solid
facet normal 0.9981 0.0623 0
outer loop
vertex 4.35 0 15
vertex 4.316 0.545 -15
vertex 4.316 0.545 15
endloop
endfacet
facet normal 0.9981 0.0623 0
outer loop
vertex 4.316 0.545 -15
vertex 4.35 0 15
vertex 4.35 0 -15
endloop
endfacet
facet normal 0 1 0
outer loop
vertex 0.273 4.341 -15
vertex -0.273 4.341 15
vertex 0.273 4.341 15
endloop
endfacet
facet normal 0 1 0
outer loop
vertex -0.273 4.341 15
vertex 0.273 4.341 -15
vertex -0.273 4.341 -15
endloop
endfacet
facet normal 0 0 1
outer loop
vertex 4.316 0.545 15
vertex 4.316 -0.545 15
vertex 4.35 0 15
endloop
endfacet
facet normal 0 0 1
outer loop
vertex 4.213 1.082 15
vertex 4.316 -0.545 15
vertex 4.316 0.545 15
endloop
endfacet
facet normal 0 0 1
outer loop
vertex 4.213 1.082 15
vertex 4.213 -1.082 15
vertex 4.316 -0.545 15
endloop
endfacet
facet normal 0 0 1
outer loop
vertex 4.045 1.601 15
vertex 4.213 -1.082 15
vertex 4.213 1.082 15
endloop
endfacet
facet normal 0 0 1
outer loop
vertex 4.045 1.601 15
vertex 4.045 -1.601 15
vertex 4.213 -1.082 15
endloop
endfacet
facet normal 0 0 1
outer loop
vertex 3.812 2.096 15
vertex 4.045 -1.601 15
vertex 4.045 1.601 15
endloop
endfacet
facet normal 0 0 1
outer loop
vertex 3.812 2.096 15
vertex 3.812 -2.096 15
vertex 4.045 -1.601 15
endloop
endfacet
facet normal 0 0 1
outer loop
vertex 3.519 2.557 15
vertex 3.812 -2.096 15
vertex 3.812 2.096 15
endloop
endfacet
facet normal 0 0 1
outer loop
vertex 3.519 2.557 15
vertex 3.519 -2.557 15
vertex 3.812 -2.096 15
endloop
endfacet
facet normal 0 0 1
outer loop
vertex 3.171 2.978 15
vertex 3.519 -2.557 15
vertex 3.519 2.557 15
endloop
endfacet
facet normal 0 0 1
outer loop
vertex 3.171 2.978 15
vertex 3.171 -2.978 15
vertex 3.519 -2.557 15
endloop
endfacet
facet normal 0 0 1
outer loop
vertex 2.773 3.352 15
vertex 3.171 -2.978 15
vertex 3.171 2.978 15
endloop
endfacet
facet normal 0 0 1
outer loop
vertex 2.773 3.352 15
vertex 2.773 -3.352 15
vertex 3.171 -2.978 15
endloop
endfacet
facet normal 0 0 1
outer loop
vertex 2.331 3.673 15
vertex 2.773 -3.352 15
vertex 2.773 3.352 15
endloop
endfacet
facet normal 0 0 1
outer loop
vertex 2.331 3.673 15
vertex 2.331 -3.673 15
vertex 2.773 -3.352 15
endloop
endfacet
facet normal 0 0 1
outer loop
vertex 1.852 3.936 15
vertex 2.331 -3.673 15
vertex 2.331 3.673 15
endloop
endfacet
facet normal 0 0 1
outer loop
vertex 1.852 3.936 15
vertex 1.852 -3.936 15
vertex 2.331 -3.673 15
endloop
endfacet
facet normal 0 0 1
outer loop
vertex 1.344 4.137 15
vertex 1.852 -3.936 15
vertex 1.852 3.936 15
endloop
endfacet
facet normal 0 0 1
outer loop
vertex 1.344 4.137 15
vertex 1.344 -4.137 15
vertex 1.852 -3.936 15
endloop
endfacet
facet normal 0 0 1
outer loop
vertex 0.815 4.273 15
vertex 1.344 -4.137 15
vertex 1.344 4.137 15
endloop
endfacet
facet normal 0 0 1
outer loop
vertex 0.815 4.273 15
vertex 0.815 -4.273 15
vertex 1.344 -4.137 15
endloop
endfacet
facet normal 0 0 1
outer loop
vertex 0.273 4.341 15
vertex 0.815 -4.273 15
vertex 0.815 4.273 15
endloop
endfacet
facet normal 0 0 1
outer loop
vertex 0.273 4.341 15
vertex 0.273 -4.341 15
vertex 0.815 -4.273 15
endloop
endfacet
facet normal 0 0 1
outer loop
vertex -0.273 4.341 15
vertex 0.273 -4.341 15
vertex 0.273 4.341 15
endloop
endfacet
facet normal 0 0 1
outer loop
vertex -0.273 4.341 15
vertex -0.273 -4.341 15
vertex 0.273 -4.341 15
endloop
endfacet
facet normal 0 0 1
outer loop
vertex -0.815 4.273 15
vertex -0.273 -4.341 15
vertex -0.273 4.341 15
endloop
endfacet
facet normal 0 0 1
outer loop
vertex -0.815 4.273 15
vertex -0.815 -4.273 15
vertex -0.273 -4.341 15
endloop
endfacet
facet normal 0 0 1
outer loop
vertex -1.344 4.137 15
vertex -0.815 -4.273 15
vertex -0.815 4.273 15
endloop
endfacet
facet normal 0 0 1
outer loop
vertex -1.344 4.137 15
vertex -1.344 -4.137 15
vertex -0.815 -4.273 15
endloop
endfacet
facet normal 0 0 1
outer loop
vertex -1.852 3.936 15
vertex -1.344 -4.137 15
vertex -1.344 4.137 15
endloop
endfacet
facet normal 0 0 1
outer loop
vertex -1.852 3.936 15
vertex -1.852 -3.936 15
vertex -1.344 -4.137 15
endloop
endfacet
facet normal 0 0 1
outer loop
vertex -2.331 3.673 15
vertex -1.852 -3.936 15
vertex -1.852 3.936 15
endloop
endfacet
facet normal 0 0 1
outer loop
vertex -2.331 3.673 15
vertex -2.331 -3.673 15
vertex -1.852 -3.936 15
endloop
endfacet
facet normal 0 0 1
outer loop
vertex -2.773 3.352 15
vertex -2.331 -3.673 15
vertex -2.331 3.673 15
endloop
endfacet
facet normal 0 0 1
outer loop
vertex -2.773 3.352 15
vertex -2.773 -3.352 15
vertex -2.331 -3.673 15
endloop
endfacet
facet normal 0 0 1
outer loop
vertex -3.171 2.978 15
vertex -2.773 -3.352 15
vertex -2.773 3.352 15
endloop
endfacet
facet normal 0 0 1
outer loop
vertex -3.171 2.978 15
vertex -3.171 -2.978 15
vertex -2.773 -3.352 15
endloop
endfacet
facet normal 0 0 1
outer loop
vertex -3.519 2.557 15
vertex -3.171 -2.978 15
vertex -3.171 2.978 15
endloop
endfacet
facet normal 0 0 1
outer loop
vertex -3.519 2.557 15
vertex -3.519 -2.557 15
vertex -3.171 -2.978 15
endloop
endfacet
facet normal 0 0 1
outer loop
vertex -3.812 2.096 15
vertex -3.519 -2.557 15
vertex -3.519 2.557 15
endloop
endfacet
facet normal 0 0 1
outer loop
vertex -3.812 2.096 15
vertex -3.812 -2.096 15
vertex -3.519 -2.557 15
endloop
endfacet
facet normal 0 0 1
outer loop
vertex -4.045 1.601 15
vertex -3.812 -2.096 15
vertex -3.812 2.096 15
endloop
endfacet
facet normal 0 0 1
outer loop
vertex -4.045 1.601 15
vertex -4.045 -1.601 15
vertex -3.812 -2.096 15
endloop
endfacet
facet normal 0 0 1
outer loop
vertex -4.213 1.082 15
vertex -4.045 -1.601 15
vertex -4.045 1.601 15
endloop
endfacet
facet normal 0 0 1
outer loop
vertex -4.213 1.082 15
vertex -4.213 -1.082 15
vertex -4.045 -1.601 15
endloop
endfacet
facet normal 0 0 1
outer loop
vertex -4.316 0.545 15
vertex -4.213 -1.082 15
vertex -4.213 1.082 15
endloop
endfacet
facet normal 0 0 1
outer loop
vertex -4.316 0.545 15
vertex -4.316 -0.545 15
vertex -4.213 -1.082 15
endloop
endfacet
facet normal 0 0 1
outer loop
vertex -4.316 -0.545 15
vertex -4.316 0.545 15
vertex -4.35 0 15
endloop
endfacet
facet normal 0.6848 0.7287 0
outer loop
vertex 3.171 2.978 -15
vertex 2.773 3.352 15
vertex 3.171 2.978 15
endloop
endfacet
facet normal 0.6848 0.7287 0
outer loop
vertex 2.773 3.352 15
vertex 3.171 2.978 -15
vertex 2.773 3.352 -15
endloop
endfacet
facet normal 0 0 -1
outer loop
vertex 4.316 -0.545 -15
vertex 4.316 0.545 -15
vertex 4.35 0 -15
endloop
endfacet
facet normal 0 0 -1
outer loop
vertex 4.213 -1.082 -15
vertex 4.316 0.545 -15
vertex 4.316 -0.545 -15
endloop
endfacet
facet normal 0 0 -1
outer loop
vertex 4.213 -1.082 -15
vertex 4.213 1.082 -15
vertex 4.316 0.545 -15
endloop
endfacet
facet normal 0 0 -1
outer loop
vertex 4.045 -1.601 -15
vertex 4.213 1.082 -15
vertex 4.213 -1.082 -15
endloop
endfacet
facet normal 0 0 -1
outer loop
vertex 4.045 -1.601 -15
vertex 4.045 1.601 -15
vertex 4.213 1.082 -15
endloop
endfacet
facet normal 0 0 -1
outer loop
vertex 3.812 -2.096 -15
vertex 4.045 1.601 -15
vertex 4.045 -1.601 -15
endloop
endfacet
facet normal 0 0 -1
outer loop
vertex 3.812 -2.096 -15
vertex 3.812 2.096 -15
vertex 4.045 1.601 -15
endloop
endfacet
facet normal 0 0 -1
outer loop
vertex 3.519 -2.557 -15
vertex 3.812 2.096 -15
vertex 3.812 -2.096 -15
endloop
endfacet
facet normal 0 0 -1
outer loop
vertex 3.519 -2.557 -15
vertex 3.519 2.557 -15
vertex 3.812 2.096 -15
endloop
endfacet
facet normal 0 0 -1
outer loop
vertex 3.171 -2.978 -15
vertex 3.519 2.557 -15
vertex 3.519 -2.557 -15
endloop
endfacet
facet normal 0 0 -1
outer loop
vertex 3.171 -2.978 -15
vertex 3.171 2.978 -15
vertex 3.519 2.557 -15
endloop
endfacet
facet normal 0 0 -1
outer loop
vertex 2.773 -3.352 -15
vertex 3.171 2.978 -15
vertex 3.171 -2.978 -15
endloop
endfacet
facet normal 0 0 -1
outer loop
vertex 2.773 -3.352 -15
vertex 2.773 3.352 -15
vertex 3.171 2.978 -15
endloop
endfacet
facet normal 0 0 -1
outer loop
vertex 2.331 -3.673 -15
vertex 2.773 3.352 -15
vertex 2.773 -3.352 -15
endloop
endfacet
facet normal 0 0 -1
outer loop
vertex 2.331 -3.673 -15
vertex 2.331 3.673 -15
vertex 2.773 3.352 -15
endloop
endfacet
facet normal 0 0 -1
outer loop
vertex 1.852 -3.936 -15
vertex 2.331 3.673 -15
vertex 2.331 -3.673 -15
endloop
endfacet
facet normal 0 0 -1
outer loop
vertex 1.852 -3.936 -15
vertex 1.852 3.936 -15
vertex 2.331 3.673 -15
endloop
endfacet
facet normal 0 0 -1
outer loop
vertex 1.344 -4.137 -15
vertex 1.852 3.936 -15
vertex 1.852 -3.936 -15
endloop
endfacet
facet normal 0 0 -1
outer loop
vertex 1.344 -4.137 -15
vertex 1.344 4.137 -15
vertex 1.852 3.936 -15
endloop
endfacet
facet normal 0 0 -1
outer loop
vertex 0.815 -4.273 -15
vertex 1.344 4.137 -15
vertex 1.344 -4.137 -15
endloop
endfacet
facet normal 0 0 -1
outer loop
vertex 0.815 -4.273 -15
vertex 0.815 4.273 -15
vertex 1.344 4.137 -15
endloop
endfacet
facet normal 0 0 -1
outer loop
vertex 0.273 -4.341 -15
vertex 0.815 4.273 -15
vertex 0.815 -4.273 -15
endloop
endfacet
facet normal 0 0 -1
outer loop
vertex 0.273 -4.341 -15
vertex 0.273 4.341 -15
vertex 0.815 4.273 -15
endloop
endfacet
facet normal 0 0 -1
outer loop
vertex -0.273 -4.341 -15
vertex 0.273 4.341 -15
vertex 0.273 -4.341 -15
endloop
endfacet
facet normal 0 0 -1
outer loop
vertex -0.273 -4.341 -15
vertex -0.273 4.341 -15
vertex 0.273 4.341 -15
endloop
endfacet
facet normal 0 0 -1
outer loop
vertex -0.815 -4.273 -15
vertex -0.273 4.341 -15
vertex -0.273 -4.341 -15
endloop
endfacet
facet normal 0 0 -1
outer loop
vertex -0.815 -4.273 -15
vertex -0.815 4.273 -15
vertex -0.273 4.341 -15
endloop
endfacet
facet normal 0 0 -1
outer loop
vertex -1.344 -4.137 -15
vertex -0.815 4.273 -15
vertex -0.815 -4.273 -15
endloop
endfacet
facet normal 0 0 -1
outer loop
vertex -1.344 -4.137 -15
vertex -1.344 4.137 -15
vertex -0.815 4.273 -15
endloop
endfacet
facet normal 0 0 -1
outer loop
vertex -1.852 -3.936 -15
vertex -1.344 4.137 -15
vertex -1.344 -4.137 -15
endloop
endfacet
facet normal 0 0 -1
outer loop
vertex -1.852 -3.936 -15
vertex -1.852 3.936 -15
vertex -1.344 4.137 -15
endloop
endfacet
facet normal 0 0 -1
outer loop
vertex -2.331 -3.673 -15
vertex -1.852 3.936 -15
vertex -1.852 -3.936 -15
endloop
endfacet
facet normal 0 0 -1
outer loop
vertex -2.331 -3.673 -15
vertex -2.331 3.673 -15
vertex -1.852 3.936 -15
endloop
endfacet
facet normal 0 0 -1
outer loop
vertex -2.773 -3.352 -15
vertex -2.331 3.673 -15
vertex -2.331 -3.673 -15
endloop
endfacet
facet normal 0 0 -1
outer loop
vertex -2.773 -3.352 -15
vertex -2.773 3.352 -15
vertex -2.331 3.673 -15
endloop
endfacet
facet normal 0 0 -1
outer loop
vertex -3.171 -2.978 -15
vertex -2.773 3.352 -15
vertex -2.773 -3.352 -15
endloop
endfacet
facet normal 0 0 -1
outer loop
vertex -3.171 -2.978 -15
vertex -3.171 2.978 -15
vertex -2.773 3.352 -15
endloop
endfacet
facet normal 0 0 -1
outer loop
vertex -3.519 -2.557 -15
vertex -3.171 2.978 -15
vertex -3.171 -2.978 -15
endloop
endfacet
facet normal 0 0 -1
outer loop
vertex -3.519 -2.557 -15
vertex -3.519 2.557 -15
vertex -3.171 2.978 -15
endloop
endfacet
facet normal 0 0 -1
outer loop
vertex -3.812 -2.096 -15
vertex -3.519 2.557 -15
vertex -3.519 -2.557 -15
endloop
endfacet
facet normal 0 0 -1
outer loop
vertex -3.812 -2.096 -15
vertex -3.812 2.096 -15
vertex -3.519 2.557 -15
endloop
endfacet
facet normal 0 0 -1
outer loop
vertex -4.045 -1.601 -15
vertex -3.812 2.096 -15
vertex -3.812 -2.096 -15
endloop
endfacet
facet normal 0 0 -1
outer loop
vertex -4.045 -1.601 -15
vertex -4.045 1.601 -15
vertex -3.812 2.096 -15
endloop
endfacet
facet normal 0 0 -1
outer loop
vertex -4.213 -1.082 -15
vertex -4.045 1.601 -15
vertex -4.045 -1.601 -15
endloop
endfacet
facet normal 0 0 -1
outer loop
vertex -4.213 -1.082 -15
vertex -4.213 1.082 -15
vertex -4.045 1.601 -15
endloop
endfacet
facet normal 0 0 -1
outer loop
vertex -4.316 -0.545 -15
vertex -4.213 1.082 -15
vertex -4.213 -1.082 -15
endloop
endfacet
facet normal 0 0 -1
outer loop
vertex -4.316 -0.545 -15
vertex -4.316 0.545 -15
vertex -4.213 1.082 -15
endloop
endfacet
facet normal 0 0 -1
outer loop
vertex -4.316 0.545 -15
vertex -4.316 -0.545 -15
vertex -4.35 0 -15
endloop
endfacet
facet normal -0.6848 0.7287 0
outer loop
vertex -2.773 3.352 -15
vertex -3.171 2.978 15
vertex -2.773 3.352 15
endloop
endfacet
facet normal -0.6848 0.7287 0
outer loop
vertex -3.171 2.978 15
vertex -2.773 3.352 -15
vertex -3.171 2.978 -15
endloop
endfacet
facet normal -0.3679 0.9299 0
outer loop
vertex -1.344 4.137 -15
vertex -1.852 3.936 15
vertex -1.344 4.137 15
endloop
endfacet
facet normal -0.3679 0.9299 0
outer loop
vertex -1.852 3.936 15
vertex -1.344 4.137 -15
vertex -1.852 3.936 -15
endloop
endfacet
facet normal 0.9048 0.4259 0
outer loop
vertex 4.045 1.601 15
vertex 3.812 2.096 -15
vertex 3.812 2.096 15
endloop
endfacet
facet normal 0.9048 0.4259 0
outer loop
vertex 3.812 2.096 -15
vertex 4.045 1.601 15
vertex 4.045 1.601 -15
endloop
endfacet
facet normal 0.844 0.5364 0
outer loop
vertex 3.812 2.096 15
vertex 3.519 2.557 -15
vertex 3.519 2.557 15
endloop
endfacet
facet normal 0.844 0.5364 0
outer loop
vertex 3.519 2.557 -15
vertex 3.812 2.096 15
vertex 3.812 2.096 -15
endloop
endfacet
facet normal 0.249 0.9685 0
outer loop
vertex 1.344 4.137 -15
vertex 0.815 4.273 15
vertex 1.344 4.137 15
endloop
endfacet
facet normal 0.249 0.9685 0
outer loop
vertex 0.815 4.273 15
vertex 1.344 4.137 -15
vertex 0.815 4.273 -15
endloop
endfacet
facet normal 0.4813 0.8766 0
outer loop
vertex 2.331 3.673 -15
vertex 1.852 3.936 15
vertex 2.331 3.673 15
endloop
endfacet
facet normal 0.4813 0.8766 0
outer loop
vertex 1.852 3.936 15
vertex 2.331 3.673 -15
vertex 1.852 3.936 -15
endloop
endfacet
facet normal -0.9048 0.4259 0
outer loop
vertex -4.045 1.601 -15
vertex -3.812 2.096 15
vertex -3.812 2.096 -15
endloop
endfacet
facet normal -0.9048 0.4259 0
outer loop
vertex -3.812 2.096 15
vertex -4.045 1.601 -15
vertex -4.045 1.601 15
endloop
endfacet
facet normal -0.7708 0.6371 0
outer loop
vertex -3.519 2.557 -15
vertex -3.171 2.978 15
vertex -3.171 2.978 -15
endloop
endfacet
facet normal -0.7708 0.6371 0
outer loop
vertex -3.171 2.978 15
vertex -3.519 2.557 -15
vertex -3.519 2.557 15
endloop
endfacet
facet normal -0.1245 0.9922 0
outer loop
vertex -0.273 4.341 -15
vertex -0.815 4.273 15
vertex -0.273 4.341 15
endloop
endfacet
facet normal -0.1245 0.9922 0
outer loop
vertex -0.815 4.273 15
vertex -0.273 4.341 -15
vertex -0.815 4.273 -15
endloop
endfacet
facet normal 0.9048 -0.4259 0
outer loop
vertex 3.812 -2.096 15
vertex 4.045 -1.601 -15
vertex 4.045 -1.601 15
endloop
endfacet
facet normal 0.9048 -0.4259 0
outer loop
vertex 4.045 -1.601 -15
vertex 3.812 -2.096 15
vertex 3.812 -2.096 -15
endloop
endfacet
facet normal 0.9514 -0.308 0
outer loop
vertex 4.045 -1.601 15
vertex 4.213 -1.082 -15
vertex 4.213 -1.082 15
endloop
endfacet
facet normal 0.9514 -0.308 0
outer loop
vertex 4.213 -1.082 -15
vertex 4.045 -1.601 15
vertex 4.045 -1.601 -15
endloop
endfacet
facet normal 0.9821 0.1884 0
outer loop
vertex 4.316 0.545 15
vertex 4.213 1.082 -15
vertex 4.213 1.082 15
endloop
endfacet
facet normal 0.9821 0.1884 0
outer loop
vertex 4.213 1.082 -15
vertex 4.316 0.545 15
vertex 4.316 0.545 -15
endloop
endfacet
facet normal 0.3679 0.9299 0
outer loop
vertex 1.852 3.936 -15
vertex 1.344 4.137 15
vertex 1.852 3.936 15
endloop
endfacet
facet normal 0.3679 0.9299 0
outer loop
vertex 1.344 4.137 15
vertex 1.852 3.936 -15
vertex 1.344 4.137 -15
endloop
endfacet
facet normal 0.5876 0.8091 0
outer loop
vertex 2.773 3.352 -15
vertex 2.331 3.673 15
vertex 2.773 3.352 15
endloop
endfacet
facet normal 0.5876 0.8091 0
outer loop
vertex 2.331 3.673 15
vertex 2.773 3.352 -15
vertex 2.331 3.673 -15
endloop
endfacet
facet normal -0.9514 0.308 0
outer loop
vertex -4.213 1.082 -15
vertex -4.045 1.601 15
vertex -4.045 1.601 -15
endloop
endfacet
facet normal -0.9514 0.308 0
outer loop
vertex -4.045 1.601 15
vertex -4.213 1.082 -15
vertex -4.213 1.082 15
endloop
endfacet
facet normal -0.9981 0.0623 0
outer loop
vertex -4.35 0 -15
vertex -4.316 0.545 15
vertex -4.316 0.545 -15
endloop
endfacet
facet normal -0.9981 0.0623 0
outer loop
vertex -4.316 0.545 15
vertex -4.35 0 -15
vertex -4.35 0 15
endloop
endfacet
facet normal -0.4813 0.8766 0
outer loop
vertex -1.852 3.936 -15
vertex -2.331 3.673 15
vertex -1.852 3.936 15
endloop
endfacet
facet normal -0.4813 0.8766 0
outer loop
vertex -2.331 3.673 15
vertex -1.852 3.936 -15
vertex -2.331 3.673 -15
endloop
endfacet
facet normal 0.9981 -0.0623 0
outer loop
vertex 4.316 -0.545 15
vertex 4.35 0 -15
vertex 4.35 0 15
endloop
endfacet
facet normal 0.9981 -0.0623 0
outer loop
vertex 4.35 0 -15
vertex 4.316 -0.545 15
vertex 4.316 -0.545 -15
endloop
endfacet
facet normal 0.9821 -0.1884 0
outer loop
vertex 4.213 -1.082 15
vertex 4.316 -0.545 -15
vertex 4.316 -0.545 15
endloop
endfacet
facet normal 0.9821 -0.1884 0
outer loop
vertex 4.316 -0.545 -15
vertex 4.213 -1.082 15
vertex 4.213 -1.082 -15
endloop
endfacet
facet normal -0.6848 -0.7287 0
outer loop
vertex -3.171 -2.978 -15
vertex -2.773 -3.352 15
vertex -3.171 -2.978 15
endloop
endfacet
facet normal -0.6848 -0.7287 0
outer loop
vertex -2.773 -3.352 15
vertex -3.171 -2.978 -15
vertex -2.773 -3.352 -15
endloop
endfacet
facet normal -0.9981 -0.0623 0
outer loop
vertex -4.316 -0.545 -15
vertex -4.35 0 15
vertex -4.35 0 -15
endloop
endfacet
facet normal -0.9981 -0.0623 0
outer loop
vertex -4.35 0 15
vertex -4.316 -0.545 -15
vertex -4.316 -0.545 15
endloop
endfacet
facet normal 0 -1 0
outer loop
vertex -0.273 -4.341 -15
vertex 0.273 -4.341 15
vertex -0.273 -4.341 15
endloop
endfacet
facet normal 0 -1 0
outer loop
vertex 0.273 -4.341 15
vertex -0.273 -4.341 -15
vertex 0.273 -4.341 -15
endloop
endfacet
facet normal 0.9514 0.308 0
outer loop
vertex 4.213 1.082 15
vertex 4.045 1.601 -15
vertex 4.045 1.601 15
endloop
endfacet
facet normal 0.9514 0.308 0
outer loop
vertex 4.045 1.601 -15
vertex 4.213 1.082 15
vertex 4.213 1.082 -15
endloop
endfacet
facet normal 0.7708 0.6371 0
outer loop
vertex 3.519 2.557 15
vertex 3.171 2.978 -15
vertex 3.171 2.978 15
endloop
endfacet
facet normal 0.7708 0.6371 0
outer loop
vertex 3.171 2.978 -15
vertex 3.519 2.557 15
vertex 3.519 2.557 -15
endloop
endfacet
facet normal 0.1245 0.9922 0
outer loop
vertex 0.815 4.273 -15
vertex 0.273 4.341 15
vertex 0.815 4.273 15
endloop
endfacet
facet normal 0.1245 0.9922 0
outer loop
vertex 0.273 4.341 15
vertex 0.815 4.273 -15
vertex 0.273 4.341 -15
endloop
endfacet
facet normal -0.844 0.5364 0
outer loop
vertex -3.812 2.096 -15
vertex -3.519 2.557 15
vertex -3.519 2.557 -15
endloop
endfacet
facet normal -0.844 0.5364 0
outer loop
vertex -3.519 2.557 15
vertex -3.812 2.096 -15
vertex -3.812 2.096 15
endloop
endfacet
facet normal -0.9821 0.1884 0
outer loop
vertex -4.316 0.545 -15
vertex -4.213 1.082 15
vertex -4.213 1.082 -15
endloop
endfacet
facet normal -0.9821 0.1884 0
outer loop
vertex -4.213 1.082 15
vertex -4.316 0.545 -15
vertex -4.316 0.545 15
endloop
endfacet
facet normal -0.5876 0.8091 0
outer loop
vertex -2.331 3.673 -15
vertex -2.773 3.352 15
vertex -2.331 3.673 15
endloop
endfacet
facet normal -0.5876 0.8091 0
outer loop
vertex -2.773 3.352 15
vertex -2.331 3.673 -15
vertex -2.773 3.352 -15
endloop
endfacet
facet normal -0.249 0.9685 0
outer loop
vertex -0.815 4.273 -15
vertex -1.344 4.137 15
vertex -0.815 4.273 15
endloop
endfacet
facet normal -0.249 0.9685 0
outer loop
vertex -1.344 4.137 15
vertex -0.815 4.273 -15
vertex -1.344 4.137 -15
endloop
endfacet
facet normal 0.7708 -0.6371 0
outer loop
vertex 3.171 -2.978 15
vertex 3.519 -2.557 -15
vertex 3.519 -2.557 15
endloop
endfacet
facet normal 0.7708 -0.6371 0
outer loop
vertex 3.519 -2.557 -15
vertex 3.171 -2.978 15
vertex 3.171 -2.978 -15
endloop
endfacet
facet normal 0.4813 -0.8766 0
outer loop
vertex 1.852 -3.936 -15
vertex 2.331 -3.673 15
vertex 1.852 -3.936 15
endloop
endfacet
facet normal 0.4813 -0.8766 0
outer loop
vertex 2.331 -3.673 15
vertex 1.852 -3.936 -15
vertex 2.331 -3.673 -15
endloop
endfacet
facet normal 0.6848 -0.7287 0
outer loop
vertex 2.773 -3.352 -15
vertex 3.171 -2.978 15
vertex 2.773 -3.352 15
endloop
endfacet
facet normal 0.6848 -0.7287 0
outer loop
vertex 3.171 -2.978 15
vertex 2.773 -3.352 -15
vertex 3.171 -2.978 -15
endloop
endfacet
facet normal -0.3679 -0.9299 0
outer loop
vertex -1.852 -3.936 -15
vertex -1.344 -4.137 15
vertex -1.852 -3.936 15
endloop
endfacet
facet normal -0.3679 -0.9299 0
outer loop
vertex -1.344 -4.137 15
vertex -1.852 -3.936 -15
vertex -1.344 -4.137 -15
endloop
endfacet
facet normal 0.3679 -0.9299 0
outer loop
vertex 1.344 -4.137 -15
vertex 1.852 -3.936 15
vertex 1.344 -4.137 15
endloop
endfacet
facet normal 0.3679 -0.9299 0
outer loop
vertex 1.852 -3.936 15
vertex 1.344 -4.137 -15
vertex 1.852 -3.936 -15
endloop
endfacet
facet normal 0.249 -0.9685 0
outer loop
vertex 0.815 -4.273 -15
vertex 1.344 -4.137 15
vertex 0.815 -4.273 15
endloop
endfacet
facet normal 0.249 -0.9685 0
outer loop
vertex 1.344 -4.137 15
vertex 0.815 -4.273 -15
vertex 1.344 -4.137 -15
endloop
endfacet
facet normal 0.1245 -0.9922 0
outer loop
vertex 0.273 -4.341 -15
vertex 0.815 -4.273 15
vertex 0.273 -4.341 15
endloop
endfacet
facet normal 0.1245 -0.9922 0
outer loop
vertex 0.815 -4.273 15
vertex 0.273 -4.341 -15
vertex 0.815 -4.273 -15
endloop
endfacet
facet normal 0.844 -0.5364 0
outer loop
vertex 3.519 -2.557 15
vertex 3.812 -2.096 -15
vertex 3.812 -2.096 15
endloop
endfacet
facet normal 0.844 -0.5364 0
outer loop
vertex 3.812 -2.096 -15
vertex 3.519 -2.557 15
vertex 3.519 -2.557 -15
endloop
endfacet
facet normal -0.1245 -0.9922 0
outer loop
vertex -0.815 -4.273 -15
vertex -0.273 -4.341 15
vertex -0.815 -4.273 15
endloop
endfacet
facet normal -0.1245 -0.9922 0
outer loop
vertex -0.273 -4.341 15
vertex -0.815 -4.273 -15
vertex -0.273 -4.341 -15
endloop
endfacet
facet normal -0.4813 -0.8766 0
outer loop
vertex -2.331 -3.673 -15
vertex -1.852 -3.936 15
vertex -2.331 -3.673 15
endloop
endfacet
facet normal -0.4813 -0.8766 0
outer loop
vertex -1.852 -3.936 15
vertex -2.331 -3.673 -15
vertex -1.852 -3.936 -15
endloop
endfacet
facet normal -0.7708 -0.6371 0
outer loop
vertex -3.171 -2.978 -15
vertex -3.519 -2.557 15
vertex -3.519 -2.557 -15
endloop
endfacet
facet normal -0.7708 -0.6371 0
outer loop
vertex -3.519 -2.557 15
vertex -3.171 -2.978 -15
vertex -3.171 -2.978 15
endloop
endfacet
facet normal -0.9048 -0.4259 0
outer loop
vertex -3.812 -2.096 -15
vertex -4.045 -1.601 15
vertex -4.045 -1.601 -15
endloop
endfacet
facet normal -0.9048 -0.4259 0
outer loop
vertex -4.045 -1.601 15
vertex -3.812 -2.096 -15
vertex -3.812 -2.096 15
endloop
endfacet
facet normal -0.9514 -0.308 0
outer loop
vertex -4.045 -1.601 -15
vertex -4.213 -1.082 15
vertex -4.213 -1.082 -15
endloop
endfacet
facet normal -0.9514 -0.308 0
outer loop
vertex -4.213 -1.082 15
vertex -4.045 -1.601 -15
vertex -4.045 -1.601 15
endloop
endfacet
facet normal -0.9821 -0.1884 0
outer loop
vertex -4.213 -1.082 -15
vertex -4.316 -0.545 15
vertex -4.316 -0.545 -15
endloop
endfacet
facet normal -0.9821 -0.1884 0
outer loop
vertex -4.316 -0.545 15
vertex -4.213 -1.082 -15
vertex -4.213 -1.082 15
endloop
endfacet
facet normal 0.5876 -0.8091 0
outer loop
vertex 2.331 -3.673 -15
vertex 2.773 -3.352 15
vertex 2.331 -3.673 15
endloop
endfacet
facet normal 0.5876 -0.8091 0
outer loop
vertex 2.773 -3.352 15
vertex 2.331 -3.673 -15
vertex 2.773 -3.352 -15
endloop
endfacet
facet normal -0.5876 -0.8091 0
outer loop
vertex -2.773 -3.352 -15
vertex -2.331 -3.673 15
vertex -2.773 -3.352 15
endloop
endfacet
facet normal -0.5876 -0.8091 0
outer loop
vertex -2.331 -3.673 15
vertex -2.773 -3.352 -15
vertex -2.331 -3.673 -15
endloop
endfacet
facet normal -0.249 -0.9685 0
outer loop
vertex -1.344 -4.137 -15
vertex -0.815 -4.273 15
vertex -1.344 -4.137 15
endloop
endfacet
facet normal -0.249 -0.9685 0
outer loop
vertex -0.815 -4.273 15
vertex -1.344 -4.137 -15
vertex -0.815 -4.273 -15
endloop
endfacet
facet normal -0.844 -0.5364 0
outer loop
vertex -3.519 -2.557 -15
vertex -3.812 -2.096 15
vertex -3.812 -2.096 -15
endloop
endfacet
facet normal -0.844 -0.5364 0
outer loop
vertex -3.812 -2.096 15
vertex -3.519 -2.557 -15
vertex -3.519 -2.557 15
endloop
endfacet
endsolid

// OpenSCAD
$fn = 50;


difference() {
	union() {
		translate(v = [0, 0, -15.0000000000]) {
			cylinder(h = 30, r = 4.3500000000);
		}
	}
	union() {
		translate(v = [0, 0, -100.0000000000]) {
			cylinder(h = 200, r = 0);
		}
	}
}
